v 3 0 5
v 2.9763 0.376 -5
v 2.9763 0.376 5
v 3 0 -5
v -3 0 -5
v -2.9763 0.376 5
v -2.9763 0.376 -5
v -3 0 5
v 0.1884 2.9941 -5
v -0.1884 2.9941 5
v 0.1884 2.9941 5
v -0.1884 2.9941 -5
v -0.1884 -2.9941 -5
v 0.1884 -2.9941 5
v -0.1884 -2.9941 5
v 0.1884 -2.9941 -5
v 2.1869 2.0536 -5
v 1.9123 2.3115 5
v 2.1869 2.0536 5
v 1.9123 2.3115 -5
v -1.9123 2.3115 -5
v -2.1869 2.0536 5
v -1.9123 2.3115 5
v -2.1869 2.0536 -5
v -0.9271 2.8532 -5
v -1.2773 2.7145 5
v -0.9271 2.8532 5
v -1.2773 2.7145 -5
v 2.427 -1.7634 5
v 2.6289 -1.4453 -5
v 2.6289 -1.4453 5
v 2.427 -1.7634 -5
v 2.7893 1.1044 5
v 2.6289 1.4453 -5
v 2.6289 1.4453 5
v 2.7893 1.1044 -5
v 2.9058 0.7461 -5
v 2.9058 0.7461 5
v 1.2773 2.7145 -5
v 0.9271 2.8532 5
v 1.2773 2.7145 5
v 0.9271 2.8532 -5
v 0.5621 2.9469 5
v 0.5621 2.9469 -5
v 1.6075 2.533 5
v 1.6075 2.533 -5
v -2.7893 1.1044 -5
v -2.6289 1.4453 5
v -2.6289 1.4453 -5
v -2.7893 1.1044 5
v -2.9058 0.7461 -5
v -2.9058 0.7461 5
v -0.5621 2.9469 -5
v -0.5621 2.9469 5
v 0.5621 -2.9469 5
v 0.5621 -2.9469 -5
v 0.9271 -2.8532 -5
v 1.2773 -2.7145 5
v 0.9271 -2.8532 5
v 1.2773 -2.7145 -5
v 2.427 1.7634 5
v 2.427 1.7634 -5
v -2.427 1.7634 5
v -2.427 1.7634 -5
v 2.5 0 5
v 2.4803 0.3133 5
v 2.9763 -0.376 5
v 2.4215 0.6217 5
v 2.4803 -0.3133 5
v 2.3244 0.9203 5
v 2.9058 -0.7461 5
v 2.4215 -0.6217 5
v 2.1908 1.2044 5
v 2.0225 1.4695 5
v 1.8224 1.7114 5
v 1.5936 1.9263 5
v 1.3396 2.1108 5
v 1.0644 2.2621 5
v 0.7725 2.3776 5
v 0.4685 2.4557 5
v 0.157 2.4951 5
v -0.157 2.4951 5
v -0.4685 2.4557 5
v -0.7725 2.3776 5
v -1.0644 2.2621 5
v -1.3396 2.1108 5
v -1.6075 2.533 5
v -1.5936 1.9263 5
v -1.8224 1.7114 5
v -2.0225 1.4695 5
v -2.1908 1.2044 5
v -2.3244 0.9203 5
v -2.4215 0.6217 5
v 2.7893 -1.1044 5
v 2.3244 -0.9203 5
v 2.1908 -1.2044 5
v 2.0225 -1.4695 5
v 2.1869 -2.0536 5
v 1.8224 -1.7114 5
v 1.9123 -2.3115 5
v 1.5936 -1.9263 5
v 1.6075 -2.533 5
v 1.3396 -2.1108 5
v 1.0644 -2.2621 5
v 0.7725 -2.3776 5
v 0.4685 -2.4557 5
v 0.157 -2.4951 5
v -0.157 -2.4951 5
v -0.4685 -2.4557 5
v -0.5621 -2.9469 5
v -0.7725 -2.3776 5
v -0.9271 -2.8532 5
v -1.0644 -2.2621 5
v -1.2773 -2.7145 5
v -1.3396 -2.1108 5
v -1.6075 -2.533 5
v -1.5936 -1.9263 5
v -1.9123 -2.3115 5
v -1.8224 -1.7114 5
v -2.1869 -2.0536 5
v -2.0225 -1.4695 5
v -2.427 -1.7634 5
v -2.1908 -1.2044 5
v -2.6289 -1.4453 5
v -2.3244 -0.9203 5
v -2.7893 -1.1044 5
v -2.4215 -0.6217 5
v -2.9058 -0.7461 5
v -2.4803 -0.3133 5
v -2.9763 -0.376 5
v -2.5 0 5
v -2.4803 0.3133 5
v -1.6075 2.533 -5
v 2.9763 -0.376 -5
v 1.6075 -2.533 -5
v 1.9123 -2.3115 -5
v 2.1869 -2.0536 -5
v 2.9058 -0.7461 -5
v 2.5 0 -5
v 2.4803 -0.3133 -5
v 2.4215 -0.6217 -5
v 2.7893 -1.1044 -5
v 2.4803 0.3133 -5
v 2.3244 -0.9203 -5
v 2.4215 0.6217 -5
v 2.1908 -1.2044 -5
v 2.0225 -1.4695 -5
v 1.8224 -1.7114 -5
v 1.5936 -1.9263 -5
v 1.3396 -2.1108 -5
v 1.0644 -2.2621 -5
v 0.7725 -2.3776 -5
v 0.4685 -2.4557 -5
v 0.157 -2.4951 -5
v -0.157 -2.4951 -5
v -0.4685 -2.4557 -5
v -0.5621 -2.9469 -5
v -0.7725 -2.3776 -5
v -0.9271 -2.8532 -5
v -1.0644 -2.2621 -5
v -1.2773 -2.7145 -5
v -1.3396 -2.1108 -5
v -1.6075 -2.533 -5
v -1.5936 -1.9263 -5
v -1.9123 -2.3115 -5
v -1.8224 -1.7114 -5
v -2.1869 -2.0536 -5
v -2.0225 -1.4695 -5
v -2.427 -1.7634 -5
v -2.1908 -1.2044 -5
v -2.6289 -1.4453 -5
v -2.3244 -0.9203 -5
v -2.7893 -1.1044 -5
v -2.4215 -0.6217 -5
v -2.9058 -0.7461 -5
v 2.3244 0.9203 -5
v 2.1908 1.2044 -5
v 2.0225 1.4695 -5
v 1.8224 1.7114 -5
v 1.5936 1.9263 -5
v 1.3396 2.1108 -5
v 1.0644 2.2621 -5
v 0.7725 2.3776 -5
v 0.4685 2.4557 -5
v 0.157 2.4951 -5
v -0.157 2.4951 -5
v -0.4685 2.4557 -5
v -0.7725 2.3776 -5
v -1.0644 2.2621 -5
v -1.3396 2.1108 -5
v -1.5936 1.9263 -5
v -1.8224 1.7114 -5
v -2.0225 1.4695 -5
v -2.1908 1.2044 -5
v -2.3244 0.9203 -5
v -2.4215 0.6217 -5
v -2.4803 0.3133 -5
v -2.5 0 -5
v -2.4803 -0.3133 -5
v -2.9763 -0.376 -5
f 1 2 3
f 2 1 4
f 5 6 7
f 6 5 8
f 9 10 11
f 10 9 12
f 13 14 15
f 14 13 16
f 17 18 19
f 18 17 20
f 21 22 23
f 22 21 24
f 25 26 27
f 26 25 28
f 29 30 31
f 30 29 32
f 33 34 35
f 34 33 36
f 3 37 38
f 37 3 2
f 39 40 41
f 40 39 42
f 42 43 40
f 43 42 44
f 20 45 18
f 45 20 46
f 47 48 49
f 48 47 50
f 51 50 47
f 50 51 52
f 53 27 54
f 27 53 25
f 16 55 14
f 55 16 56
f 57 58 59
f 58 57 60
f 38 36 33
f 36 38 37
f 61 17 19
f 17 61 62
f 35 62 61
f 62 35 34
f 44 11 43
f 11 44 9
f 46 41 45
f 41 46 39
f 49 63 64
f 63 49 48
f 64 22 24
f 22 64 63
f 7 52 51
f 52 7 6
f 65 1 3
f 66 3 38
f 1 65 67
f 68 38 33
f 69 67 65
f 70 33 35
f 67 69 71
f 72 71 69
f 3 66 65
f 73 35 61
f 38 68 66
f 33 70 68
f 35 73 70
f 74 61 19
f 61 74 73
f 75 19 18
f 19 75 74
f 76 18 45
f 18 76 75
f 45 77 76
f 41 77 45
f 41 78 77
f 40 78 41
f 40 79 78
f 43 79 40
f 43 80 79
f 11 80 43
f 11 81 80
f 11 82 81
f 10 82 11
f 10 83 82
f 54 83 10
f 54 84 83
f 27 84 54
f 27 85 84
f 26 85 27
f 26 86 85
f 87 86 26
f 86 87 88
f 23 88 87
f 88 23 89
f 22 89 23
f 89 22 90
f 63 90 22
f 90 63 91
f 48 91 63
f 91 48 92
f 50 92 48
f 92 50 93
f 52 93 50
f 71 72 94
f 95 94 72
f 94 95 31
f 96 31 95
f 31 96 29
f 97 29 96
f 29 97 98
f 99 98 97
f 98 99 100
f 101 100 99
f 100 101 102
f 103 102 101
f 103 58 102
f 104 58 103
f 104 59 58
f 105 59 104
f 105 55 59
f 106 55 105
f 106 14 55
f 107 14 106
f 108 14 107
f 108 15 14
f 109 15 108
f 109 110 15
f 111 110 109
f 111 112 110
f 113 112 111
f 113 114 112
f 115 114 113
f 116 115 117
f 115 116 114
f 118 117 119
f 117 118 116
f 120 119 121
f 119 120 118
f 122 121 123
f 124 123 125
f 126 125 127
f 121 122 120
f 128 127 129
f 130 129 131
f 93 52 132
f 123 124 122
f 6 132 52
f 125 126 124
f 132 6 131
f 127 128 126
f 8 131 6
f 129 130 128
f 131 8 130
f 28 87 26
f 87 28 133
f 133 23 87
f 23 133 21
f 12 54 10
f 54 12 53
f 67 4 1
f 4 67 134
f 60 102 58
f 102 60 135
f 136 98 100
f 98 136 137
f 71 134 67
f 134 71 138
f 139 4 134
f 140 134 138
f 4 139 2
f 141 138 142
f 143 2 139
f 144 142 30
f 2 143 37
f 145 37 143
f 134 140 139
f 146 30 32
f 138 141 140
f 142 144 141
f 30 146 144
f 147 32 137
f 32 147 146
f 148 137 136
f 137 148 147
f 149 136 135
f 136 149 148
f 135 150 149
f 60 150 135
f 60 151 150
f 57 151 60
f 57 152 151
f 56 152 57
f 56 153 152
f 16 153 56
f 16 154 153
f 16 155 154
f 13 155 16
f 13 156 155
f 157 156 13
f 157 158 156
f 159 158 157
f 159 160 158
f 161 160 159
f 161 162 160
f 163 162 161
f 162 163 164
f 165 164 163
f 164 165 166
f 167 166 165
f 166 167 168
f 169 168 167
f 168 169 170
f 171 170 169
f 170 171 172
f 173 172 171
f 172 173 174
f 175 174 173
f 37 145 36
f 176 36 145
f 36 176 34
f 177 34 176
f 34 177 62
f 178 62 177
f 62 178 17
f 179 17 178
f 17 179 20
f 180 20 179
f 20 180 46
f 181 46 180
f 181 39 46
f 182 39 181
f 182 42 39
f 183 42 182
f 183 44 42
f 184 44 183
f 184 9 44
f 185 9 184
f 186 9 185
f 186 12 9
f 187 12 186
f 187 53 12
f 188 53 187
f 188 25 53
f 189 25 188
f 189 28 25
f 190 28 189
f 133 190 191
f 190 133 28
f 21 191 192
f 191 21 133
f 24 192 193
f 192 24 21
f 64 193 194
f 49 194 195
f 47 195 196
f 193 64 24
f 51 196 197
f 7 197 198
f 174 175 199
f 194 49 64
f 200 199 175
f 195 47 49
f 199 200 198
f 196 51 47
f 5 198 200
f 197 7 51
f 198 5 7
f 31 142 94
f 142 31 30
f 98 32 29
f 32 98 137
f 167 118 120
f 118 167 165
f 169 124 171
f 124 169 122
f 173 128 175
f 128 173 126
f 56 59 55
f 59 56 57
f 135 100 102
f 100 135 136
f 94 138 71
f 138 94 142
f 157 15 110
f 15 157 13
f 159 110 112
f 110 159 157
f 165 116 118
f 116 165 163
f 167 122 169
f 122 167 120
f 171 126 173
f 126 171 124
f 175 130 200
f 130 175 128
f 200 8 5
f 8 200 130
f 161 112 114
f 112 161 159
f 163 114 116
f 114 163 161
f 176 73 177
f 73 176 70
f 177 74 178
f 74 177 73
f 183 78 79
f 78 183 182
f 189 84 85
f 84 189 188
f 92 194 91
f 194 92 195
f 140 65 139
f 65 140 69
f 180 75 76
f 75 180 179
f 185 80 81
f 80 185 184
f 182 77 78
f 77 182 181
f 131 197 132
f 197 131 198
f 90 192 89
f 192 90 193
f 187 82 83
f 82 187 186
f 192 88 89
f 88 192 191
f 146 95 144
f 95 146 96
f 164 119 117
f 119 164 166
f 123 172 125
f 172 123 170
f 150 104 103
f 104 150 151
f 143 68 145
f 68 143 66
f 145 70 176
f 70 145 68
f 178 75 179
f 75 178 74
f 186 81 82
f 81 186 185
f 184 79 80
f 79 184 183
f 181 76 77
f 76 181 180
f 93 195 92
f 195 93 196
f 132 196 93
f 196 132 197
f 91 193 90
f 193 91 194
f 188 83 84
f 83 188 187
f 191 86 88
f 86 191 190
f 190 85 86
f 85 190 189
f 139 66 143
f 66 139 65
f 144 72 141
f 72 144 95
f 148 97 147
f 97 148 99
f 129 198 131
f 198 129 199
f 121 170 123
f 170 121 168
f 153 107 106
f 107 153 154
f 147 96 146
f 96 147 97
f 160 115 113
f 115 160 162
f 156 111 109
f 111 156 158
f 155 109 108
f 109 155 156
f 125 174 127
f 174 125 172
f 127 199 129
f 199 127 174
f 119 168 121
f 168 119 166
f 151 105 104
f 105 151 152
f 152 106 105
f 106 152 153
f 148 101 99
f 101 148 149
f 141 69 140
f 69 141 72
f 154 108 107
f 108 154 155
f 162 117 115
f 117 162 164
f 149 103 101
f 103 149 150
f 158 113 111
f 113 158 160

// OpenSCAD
$fn = 50;


difference() {
	union() {
		translate(v = [0, 0, -5.0000000000]) {
			cylinder(h = 10, r = 3.0000000000);
		}
	}
	union() {
		translate(v = [0, 0, -100.0000000000]) {
			cylinder(h = 200, r = 2.5000000000);
		}
	}
}
